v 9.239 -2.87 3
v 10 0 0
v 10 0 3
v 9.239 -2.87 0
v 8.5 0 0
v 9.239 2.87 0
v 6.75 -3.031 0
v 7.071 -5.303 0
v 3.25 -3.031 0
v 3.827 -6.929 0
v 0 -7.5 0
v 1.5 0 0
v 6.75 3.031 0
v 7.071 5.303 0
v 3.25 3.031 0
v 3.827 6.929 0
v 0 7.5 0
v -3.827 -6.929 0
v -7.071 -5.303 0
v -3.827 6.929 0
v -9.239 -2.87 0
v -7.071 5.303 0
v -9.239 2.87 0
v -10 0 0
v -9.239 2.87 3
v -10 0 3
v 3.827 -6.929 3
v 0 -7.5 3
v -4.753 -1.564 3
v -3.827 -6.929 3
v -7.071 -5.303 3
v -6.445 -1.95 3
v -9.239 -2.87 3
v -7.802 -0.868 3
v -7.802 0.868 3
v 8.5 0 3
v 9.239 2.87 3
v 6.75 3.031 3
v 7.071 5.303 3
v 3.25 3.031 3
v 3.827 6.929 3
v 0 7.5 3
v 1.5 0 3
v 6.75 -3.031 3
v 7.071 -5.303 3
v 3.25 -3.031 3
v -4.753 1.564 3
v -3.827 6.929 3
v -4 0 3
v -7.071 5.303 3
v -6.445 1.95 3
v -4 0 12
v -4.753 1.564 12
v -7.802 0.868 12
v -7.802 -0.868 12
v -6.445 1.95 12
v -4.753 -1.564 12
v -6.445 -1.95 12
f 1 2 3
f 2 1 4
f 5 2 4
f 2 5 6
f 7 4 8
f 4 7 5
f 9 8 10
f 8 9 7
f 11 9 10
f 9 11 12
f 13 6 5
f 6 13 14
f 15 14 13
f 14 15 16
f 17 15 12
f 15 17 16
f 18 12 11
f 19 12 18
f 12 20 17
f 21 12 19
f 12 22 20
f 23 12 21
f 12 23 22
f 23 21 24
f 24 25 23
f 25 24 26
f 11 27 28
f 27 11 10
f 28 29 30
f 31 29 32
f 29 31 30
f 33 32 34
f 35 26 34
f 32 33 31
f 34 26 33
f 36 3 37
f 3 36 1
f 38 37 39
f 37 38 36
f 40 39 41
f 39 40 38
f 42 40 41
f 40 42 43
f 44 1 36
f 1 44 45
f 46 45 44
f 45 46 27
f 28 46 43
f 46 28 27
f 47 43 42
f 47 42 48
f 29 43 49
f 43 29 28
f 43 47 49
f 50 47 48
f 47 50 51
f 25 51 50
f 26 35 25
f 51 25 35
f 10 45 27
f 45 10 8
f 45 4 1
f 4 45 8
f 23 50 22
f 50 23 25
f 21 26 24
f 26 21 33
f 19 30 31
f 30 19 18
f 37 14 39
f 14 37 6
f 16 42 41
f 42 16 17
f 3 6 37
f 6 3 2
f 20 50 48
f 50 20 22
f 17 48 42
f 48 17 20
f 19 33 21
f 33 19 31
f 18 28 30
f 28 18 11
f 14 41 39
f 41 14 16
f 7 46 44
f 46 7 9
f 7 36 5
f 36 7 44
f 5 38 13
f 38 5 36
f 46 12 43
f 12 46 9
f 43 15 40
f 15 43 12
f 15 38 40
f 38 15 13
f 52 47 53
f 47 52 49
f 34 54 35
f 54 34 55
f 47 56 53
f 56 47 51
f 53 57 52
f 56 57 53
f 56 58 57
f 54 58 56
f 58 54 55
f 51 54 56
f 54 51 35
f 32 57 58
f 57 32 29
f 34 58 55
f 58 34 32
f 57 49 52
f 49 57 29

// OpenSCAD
module leg_attachments(){
    difference(){
    union(){
    //Oval shape
    linear_extrude(height=3) resize([20,15])circle(d=10);
    }
    //Subtract the hexagon
    translate([5,0,0]) linear_extrude(height=4) circle($fn=6, d=7);
    }
}

module cylinder_peg(){
    //Add small peg   
    translate([-6,0,0])cylinder(d=4, h=12);
}

leg_attachments();
cylinder_peg();
